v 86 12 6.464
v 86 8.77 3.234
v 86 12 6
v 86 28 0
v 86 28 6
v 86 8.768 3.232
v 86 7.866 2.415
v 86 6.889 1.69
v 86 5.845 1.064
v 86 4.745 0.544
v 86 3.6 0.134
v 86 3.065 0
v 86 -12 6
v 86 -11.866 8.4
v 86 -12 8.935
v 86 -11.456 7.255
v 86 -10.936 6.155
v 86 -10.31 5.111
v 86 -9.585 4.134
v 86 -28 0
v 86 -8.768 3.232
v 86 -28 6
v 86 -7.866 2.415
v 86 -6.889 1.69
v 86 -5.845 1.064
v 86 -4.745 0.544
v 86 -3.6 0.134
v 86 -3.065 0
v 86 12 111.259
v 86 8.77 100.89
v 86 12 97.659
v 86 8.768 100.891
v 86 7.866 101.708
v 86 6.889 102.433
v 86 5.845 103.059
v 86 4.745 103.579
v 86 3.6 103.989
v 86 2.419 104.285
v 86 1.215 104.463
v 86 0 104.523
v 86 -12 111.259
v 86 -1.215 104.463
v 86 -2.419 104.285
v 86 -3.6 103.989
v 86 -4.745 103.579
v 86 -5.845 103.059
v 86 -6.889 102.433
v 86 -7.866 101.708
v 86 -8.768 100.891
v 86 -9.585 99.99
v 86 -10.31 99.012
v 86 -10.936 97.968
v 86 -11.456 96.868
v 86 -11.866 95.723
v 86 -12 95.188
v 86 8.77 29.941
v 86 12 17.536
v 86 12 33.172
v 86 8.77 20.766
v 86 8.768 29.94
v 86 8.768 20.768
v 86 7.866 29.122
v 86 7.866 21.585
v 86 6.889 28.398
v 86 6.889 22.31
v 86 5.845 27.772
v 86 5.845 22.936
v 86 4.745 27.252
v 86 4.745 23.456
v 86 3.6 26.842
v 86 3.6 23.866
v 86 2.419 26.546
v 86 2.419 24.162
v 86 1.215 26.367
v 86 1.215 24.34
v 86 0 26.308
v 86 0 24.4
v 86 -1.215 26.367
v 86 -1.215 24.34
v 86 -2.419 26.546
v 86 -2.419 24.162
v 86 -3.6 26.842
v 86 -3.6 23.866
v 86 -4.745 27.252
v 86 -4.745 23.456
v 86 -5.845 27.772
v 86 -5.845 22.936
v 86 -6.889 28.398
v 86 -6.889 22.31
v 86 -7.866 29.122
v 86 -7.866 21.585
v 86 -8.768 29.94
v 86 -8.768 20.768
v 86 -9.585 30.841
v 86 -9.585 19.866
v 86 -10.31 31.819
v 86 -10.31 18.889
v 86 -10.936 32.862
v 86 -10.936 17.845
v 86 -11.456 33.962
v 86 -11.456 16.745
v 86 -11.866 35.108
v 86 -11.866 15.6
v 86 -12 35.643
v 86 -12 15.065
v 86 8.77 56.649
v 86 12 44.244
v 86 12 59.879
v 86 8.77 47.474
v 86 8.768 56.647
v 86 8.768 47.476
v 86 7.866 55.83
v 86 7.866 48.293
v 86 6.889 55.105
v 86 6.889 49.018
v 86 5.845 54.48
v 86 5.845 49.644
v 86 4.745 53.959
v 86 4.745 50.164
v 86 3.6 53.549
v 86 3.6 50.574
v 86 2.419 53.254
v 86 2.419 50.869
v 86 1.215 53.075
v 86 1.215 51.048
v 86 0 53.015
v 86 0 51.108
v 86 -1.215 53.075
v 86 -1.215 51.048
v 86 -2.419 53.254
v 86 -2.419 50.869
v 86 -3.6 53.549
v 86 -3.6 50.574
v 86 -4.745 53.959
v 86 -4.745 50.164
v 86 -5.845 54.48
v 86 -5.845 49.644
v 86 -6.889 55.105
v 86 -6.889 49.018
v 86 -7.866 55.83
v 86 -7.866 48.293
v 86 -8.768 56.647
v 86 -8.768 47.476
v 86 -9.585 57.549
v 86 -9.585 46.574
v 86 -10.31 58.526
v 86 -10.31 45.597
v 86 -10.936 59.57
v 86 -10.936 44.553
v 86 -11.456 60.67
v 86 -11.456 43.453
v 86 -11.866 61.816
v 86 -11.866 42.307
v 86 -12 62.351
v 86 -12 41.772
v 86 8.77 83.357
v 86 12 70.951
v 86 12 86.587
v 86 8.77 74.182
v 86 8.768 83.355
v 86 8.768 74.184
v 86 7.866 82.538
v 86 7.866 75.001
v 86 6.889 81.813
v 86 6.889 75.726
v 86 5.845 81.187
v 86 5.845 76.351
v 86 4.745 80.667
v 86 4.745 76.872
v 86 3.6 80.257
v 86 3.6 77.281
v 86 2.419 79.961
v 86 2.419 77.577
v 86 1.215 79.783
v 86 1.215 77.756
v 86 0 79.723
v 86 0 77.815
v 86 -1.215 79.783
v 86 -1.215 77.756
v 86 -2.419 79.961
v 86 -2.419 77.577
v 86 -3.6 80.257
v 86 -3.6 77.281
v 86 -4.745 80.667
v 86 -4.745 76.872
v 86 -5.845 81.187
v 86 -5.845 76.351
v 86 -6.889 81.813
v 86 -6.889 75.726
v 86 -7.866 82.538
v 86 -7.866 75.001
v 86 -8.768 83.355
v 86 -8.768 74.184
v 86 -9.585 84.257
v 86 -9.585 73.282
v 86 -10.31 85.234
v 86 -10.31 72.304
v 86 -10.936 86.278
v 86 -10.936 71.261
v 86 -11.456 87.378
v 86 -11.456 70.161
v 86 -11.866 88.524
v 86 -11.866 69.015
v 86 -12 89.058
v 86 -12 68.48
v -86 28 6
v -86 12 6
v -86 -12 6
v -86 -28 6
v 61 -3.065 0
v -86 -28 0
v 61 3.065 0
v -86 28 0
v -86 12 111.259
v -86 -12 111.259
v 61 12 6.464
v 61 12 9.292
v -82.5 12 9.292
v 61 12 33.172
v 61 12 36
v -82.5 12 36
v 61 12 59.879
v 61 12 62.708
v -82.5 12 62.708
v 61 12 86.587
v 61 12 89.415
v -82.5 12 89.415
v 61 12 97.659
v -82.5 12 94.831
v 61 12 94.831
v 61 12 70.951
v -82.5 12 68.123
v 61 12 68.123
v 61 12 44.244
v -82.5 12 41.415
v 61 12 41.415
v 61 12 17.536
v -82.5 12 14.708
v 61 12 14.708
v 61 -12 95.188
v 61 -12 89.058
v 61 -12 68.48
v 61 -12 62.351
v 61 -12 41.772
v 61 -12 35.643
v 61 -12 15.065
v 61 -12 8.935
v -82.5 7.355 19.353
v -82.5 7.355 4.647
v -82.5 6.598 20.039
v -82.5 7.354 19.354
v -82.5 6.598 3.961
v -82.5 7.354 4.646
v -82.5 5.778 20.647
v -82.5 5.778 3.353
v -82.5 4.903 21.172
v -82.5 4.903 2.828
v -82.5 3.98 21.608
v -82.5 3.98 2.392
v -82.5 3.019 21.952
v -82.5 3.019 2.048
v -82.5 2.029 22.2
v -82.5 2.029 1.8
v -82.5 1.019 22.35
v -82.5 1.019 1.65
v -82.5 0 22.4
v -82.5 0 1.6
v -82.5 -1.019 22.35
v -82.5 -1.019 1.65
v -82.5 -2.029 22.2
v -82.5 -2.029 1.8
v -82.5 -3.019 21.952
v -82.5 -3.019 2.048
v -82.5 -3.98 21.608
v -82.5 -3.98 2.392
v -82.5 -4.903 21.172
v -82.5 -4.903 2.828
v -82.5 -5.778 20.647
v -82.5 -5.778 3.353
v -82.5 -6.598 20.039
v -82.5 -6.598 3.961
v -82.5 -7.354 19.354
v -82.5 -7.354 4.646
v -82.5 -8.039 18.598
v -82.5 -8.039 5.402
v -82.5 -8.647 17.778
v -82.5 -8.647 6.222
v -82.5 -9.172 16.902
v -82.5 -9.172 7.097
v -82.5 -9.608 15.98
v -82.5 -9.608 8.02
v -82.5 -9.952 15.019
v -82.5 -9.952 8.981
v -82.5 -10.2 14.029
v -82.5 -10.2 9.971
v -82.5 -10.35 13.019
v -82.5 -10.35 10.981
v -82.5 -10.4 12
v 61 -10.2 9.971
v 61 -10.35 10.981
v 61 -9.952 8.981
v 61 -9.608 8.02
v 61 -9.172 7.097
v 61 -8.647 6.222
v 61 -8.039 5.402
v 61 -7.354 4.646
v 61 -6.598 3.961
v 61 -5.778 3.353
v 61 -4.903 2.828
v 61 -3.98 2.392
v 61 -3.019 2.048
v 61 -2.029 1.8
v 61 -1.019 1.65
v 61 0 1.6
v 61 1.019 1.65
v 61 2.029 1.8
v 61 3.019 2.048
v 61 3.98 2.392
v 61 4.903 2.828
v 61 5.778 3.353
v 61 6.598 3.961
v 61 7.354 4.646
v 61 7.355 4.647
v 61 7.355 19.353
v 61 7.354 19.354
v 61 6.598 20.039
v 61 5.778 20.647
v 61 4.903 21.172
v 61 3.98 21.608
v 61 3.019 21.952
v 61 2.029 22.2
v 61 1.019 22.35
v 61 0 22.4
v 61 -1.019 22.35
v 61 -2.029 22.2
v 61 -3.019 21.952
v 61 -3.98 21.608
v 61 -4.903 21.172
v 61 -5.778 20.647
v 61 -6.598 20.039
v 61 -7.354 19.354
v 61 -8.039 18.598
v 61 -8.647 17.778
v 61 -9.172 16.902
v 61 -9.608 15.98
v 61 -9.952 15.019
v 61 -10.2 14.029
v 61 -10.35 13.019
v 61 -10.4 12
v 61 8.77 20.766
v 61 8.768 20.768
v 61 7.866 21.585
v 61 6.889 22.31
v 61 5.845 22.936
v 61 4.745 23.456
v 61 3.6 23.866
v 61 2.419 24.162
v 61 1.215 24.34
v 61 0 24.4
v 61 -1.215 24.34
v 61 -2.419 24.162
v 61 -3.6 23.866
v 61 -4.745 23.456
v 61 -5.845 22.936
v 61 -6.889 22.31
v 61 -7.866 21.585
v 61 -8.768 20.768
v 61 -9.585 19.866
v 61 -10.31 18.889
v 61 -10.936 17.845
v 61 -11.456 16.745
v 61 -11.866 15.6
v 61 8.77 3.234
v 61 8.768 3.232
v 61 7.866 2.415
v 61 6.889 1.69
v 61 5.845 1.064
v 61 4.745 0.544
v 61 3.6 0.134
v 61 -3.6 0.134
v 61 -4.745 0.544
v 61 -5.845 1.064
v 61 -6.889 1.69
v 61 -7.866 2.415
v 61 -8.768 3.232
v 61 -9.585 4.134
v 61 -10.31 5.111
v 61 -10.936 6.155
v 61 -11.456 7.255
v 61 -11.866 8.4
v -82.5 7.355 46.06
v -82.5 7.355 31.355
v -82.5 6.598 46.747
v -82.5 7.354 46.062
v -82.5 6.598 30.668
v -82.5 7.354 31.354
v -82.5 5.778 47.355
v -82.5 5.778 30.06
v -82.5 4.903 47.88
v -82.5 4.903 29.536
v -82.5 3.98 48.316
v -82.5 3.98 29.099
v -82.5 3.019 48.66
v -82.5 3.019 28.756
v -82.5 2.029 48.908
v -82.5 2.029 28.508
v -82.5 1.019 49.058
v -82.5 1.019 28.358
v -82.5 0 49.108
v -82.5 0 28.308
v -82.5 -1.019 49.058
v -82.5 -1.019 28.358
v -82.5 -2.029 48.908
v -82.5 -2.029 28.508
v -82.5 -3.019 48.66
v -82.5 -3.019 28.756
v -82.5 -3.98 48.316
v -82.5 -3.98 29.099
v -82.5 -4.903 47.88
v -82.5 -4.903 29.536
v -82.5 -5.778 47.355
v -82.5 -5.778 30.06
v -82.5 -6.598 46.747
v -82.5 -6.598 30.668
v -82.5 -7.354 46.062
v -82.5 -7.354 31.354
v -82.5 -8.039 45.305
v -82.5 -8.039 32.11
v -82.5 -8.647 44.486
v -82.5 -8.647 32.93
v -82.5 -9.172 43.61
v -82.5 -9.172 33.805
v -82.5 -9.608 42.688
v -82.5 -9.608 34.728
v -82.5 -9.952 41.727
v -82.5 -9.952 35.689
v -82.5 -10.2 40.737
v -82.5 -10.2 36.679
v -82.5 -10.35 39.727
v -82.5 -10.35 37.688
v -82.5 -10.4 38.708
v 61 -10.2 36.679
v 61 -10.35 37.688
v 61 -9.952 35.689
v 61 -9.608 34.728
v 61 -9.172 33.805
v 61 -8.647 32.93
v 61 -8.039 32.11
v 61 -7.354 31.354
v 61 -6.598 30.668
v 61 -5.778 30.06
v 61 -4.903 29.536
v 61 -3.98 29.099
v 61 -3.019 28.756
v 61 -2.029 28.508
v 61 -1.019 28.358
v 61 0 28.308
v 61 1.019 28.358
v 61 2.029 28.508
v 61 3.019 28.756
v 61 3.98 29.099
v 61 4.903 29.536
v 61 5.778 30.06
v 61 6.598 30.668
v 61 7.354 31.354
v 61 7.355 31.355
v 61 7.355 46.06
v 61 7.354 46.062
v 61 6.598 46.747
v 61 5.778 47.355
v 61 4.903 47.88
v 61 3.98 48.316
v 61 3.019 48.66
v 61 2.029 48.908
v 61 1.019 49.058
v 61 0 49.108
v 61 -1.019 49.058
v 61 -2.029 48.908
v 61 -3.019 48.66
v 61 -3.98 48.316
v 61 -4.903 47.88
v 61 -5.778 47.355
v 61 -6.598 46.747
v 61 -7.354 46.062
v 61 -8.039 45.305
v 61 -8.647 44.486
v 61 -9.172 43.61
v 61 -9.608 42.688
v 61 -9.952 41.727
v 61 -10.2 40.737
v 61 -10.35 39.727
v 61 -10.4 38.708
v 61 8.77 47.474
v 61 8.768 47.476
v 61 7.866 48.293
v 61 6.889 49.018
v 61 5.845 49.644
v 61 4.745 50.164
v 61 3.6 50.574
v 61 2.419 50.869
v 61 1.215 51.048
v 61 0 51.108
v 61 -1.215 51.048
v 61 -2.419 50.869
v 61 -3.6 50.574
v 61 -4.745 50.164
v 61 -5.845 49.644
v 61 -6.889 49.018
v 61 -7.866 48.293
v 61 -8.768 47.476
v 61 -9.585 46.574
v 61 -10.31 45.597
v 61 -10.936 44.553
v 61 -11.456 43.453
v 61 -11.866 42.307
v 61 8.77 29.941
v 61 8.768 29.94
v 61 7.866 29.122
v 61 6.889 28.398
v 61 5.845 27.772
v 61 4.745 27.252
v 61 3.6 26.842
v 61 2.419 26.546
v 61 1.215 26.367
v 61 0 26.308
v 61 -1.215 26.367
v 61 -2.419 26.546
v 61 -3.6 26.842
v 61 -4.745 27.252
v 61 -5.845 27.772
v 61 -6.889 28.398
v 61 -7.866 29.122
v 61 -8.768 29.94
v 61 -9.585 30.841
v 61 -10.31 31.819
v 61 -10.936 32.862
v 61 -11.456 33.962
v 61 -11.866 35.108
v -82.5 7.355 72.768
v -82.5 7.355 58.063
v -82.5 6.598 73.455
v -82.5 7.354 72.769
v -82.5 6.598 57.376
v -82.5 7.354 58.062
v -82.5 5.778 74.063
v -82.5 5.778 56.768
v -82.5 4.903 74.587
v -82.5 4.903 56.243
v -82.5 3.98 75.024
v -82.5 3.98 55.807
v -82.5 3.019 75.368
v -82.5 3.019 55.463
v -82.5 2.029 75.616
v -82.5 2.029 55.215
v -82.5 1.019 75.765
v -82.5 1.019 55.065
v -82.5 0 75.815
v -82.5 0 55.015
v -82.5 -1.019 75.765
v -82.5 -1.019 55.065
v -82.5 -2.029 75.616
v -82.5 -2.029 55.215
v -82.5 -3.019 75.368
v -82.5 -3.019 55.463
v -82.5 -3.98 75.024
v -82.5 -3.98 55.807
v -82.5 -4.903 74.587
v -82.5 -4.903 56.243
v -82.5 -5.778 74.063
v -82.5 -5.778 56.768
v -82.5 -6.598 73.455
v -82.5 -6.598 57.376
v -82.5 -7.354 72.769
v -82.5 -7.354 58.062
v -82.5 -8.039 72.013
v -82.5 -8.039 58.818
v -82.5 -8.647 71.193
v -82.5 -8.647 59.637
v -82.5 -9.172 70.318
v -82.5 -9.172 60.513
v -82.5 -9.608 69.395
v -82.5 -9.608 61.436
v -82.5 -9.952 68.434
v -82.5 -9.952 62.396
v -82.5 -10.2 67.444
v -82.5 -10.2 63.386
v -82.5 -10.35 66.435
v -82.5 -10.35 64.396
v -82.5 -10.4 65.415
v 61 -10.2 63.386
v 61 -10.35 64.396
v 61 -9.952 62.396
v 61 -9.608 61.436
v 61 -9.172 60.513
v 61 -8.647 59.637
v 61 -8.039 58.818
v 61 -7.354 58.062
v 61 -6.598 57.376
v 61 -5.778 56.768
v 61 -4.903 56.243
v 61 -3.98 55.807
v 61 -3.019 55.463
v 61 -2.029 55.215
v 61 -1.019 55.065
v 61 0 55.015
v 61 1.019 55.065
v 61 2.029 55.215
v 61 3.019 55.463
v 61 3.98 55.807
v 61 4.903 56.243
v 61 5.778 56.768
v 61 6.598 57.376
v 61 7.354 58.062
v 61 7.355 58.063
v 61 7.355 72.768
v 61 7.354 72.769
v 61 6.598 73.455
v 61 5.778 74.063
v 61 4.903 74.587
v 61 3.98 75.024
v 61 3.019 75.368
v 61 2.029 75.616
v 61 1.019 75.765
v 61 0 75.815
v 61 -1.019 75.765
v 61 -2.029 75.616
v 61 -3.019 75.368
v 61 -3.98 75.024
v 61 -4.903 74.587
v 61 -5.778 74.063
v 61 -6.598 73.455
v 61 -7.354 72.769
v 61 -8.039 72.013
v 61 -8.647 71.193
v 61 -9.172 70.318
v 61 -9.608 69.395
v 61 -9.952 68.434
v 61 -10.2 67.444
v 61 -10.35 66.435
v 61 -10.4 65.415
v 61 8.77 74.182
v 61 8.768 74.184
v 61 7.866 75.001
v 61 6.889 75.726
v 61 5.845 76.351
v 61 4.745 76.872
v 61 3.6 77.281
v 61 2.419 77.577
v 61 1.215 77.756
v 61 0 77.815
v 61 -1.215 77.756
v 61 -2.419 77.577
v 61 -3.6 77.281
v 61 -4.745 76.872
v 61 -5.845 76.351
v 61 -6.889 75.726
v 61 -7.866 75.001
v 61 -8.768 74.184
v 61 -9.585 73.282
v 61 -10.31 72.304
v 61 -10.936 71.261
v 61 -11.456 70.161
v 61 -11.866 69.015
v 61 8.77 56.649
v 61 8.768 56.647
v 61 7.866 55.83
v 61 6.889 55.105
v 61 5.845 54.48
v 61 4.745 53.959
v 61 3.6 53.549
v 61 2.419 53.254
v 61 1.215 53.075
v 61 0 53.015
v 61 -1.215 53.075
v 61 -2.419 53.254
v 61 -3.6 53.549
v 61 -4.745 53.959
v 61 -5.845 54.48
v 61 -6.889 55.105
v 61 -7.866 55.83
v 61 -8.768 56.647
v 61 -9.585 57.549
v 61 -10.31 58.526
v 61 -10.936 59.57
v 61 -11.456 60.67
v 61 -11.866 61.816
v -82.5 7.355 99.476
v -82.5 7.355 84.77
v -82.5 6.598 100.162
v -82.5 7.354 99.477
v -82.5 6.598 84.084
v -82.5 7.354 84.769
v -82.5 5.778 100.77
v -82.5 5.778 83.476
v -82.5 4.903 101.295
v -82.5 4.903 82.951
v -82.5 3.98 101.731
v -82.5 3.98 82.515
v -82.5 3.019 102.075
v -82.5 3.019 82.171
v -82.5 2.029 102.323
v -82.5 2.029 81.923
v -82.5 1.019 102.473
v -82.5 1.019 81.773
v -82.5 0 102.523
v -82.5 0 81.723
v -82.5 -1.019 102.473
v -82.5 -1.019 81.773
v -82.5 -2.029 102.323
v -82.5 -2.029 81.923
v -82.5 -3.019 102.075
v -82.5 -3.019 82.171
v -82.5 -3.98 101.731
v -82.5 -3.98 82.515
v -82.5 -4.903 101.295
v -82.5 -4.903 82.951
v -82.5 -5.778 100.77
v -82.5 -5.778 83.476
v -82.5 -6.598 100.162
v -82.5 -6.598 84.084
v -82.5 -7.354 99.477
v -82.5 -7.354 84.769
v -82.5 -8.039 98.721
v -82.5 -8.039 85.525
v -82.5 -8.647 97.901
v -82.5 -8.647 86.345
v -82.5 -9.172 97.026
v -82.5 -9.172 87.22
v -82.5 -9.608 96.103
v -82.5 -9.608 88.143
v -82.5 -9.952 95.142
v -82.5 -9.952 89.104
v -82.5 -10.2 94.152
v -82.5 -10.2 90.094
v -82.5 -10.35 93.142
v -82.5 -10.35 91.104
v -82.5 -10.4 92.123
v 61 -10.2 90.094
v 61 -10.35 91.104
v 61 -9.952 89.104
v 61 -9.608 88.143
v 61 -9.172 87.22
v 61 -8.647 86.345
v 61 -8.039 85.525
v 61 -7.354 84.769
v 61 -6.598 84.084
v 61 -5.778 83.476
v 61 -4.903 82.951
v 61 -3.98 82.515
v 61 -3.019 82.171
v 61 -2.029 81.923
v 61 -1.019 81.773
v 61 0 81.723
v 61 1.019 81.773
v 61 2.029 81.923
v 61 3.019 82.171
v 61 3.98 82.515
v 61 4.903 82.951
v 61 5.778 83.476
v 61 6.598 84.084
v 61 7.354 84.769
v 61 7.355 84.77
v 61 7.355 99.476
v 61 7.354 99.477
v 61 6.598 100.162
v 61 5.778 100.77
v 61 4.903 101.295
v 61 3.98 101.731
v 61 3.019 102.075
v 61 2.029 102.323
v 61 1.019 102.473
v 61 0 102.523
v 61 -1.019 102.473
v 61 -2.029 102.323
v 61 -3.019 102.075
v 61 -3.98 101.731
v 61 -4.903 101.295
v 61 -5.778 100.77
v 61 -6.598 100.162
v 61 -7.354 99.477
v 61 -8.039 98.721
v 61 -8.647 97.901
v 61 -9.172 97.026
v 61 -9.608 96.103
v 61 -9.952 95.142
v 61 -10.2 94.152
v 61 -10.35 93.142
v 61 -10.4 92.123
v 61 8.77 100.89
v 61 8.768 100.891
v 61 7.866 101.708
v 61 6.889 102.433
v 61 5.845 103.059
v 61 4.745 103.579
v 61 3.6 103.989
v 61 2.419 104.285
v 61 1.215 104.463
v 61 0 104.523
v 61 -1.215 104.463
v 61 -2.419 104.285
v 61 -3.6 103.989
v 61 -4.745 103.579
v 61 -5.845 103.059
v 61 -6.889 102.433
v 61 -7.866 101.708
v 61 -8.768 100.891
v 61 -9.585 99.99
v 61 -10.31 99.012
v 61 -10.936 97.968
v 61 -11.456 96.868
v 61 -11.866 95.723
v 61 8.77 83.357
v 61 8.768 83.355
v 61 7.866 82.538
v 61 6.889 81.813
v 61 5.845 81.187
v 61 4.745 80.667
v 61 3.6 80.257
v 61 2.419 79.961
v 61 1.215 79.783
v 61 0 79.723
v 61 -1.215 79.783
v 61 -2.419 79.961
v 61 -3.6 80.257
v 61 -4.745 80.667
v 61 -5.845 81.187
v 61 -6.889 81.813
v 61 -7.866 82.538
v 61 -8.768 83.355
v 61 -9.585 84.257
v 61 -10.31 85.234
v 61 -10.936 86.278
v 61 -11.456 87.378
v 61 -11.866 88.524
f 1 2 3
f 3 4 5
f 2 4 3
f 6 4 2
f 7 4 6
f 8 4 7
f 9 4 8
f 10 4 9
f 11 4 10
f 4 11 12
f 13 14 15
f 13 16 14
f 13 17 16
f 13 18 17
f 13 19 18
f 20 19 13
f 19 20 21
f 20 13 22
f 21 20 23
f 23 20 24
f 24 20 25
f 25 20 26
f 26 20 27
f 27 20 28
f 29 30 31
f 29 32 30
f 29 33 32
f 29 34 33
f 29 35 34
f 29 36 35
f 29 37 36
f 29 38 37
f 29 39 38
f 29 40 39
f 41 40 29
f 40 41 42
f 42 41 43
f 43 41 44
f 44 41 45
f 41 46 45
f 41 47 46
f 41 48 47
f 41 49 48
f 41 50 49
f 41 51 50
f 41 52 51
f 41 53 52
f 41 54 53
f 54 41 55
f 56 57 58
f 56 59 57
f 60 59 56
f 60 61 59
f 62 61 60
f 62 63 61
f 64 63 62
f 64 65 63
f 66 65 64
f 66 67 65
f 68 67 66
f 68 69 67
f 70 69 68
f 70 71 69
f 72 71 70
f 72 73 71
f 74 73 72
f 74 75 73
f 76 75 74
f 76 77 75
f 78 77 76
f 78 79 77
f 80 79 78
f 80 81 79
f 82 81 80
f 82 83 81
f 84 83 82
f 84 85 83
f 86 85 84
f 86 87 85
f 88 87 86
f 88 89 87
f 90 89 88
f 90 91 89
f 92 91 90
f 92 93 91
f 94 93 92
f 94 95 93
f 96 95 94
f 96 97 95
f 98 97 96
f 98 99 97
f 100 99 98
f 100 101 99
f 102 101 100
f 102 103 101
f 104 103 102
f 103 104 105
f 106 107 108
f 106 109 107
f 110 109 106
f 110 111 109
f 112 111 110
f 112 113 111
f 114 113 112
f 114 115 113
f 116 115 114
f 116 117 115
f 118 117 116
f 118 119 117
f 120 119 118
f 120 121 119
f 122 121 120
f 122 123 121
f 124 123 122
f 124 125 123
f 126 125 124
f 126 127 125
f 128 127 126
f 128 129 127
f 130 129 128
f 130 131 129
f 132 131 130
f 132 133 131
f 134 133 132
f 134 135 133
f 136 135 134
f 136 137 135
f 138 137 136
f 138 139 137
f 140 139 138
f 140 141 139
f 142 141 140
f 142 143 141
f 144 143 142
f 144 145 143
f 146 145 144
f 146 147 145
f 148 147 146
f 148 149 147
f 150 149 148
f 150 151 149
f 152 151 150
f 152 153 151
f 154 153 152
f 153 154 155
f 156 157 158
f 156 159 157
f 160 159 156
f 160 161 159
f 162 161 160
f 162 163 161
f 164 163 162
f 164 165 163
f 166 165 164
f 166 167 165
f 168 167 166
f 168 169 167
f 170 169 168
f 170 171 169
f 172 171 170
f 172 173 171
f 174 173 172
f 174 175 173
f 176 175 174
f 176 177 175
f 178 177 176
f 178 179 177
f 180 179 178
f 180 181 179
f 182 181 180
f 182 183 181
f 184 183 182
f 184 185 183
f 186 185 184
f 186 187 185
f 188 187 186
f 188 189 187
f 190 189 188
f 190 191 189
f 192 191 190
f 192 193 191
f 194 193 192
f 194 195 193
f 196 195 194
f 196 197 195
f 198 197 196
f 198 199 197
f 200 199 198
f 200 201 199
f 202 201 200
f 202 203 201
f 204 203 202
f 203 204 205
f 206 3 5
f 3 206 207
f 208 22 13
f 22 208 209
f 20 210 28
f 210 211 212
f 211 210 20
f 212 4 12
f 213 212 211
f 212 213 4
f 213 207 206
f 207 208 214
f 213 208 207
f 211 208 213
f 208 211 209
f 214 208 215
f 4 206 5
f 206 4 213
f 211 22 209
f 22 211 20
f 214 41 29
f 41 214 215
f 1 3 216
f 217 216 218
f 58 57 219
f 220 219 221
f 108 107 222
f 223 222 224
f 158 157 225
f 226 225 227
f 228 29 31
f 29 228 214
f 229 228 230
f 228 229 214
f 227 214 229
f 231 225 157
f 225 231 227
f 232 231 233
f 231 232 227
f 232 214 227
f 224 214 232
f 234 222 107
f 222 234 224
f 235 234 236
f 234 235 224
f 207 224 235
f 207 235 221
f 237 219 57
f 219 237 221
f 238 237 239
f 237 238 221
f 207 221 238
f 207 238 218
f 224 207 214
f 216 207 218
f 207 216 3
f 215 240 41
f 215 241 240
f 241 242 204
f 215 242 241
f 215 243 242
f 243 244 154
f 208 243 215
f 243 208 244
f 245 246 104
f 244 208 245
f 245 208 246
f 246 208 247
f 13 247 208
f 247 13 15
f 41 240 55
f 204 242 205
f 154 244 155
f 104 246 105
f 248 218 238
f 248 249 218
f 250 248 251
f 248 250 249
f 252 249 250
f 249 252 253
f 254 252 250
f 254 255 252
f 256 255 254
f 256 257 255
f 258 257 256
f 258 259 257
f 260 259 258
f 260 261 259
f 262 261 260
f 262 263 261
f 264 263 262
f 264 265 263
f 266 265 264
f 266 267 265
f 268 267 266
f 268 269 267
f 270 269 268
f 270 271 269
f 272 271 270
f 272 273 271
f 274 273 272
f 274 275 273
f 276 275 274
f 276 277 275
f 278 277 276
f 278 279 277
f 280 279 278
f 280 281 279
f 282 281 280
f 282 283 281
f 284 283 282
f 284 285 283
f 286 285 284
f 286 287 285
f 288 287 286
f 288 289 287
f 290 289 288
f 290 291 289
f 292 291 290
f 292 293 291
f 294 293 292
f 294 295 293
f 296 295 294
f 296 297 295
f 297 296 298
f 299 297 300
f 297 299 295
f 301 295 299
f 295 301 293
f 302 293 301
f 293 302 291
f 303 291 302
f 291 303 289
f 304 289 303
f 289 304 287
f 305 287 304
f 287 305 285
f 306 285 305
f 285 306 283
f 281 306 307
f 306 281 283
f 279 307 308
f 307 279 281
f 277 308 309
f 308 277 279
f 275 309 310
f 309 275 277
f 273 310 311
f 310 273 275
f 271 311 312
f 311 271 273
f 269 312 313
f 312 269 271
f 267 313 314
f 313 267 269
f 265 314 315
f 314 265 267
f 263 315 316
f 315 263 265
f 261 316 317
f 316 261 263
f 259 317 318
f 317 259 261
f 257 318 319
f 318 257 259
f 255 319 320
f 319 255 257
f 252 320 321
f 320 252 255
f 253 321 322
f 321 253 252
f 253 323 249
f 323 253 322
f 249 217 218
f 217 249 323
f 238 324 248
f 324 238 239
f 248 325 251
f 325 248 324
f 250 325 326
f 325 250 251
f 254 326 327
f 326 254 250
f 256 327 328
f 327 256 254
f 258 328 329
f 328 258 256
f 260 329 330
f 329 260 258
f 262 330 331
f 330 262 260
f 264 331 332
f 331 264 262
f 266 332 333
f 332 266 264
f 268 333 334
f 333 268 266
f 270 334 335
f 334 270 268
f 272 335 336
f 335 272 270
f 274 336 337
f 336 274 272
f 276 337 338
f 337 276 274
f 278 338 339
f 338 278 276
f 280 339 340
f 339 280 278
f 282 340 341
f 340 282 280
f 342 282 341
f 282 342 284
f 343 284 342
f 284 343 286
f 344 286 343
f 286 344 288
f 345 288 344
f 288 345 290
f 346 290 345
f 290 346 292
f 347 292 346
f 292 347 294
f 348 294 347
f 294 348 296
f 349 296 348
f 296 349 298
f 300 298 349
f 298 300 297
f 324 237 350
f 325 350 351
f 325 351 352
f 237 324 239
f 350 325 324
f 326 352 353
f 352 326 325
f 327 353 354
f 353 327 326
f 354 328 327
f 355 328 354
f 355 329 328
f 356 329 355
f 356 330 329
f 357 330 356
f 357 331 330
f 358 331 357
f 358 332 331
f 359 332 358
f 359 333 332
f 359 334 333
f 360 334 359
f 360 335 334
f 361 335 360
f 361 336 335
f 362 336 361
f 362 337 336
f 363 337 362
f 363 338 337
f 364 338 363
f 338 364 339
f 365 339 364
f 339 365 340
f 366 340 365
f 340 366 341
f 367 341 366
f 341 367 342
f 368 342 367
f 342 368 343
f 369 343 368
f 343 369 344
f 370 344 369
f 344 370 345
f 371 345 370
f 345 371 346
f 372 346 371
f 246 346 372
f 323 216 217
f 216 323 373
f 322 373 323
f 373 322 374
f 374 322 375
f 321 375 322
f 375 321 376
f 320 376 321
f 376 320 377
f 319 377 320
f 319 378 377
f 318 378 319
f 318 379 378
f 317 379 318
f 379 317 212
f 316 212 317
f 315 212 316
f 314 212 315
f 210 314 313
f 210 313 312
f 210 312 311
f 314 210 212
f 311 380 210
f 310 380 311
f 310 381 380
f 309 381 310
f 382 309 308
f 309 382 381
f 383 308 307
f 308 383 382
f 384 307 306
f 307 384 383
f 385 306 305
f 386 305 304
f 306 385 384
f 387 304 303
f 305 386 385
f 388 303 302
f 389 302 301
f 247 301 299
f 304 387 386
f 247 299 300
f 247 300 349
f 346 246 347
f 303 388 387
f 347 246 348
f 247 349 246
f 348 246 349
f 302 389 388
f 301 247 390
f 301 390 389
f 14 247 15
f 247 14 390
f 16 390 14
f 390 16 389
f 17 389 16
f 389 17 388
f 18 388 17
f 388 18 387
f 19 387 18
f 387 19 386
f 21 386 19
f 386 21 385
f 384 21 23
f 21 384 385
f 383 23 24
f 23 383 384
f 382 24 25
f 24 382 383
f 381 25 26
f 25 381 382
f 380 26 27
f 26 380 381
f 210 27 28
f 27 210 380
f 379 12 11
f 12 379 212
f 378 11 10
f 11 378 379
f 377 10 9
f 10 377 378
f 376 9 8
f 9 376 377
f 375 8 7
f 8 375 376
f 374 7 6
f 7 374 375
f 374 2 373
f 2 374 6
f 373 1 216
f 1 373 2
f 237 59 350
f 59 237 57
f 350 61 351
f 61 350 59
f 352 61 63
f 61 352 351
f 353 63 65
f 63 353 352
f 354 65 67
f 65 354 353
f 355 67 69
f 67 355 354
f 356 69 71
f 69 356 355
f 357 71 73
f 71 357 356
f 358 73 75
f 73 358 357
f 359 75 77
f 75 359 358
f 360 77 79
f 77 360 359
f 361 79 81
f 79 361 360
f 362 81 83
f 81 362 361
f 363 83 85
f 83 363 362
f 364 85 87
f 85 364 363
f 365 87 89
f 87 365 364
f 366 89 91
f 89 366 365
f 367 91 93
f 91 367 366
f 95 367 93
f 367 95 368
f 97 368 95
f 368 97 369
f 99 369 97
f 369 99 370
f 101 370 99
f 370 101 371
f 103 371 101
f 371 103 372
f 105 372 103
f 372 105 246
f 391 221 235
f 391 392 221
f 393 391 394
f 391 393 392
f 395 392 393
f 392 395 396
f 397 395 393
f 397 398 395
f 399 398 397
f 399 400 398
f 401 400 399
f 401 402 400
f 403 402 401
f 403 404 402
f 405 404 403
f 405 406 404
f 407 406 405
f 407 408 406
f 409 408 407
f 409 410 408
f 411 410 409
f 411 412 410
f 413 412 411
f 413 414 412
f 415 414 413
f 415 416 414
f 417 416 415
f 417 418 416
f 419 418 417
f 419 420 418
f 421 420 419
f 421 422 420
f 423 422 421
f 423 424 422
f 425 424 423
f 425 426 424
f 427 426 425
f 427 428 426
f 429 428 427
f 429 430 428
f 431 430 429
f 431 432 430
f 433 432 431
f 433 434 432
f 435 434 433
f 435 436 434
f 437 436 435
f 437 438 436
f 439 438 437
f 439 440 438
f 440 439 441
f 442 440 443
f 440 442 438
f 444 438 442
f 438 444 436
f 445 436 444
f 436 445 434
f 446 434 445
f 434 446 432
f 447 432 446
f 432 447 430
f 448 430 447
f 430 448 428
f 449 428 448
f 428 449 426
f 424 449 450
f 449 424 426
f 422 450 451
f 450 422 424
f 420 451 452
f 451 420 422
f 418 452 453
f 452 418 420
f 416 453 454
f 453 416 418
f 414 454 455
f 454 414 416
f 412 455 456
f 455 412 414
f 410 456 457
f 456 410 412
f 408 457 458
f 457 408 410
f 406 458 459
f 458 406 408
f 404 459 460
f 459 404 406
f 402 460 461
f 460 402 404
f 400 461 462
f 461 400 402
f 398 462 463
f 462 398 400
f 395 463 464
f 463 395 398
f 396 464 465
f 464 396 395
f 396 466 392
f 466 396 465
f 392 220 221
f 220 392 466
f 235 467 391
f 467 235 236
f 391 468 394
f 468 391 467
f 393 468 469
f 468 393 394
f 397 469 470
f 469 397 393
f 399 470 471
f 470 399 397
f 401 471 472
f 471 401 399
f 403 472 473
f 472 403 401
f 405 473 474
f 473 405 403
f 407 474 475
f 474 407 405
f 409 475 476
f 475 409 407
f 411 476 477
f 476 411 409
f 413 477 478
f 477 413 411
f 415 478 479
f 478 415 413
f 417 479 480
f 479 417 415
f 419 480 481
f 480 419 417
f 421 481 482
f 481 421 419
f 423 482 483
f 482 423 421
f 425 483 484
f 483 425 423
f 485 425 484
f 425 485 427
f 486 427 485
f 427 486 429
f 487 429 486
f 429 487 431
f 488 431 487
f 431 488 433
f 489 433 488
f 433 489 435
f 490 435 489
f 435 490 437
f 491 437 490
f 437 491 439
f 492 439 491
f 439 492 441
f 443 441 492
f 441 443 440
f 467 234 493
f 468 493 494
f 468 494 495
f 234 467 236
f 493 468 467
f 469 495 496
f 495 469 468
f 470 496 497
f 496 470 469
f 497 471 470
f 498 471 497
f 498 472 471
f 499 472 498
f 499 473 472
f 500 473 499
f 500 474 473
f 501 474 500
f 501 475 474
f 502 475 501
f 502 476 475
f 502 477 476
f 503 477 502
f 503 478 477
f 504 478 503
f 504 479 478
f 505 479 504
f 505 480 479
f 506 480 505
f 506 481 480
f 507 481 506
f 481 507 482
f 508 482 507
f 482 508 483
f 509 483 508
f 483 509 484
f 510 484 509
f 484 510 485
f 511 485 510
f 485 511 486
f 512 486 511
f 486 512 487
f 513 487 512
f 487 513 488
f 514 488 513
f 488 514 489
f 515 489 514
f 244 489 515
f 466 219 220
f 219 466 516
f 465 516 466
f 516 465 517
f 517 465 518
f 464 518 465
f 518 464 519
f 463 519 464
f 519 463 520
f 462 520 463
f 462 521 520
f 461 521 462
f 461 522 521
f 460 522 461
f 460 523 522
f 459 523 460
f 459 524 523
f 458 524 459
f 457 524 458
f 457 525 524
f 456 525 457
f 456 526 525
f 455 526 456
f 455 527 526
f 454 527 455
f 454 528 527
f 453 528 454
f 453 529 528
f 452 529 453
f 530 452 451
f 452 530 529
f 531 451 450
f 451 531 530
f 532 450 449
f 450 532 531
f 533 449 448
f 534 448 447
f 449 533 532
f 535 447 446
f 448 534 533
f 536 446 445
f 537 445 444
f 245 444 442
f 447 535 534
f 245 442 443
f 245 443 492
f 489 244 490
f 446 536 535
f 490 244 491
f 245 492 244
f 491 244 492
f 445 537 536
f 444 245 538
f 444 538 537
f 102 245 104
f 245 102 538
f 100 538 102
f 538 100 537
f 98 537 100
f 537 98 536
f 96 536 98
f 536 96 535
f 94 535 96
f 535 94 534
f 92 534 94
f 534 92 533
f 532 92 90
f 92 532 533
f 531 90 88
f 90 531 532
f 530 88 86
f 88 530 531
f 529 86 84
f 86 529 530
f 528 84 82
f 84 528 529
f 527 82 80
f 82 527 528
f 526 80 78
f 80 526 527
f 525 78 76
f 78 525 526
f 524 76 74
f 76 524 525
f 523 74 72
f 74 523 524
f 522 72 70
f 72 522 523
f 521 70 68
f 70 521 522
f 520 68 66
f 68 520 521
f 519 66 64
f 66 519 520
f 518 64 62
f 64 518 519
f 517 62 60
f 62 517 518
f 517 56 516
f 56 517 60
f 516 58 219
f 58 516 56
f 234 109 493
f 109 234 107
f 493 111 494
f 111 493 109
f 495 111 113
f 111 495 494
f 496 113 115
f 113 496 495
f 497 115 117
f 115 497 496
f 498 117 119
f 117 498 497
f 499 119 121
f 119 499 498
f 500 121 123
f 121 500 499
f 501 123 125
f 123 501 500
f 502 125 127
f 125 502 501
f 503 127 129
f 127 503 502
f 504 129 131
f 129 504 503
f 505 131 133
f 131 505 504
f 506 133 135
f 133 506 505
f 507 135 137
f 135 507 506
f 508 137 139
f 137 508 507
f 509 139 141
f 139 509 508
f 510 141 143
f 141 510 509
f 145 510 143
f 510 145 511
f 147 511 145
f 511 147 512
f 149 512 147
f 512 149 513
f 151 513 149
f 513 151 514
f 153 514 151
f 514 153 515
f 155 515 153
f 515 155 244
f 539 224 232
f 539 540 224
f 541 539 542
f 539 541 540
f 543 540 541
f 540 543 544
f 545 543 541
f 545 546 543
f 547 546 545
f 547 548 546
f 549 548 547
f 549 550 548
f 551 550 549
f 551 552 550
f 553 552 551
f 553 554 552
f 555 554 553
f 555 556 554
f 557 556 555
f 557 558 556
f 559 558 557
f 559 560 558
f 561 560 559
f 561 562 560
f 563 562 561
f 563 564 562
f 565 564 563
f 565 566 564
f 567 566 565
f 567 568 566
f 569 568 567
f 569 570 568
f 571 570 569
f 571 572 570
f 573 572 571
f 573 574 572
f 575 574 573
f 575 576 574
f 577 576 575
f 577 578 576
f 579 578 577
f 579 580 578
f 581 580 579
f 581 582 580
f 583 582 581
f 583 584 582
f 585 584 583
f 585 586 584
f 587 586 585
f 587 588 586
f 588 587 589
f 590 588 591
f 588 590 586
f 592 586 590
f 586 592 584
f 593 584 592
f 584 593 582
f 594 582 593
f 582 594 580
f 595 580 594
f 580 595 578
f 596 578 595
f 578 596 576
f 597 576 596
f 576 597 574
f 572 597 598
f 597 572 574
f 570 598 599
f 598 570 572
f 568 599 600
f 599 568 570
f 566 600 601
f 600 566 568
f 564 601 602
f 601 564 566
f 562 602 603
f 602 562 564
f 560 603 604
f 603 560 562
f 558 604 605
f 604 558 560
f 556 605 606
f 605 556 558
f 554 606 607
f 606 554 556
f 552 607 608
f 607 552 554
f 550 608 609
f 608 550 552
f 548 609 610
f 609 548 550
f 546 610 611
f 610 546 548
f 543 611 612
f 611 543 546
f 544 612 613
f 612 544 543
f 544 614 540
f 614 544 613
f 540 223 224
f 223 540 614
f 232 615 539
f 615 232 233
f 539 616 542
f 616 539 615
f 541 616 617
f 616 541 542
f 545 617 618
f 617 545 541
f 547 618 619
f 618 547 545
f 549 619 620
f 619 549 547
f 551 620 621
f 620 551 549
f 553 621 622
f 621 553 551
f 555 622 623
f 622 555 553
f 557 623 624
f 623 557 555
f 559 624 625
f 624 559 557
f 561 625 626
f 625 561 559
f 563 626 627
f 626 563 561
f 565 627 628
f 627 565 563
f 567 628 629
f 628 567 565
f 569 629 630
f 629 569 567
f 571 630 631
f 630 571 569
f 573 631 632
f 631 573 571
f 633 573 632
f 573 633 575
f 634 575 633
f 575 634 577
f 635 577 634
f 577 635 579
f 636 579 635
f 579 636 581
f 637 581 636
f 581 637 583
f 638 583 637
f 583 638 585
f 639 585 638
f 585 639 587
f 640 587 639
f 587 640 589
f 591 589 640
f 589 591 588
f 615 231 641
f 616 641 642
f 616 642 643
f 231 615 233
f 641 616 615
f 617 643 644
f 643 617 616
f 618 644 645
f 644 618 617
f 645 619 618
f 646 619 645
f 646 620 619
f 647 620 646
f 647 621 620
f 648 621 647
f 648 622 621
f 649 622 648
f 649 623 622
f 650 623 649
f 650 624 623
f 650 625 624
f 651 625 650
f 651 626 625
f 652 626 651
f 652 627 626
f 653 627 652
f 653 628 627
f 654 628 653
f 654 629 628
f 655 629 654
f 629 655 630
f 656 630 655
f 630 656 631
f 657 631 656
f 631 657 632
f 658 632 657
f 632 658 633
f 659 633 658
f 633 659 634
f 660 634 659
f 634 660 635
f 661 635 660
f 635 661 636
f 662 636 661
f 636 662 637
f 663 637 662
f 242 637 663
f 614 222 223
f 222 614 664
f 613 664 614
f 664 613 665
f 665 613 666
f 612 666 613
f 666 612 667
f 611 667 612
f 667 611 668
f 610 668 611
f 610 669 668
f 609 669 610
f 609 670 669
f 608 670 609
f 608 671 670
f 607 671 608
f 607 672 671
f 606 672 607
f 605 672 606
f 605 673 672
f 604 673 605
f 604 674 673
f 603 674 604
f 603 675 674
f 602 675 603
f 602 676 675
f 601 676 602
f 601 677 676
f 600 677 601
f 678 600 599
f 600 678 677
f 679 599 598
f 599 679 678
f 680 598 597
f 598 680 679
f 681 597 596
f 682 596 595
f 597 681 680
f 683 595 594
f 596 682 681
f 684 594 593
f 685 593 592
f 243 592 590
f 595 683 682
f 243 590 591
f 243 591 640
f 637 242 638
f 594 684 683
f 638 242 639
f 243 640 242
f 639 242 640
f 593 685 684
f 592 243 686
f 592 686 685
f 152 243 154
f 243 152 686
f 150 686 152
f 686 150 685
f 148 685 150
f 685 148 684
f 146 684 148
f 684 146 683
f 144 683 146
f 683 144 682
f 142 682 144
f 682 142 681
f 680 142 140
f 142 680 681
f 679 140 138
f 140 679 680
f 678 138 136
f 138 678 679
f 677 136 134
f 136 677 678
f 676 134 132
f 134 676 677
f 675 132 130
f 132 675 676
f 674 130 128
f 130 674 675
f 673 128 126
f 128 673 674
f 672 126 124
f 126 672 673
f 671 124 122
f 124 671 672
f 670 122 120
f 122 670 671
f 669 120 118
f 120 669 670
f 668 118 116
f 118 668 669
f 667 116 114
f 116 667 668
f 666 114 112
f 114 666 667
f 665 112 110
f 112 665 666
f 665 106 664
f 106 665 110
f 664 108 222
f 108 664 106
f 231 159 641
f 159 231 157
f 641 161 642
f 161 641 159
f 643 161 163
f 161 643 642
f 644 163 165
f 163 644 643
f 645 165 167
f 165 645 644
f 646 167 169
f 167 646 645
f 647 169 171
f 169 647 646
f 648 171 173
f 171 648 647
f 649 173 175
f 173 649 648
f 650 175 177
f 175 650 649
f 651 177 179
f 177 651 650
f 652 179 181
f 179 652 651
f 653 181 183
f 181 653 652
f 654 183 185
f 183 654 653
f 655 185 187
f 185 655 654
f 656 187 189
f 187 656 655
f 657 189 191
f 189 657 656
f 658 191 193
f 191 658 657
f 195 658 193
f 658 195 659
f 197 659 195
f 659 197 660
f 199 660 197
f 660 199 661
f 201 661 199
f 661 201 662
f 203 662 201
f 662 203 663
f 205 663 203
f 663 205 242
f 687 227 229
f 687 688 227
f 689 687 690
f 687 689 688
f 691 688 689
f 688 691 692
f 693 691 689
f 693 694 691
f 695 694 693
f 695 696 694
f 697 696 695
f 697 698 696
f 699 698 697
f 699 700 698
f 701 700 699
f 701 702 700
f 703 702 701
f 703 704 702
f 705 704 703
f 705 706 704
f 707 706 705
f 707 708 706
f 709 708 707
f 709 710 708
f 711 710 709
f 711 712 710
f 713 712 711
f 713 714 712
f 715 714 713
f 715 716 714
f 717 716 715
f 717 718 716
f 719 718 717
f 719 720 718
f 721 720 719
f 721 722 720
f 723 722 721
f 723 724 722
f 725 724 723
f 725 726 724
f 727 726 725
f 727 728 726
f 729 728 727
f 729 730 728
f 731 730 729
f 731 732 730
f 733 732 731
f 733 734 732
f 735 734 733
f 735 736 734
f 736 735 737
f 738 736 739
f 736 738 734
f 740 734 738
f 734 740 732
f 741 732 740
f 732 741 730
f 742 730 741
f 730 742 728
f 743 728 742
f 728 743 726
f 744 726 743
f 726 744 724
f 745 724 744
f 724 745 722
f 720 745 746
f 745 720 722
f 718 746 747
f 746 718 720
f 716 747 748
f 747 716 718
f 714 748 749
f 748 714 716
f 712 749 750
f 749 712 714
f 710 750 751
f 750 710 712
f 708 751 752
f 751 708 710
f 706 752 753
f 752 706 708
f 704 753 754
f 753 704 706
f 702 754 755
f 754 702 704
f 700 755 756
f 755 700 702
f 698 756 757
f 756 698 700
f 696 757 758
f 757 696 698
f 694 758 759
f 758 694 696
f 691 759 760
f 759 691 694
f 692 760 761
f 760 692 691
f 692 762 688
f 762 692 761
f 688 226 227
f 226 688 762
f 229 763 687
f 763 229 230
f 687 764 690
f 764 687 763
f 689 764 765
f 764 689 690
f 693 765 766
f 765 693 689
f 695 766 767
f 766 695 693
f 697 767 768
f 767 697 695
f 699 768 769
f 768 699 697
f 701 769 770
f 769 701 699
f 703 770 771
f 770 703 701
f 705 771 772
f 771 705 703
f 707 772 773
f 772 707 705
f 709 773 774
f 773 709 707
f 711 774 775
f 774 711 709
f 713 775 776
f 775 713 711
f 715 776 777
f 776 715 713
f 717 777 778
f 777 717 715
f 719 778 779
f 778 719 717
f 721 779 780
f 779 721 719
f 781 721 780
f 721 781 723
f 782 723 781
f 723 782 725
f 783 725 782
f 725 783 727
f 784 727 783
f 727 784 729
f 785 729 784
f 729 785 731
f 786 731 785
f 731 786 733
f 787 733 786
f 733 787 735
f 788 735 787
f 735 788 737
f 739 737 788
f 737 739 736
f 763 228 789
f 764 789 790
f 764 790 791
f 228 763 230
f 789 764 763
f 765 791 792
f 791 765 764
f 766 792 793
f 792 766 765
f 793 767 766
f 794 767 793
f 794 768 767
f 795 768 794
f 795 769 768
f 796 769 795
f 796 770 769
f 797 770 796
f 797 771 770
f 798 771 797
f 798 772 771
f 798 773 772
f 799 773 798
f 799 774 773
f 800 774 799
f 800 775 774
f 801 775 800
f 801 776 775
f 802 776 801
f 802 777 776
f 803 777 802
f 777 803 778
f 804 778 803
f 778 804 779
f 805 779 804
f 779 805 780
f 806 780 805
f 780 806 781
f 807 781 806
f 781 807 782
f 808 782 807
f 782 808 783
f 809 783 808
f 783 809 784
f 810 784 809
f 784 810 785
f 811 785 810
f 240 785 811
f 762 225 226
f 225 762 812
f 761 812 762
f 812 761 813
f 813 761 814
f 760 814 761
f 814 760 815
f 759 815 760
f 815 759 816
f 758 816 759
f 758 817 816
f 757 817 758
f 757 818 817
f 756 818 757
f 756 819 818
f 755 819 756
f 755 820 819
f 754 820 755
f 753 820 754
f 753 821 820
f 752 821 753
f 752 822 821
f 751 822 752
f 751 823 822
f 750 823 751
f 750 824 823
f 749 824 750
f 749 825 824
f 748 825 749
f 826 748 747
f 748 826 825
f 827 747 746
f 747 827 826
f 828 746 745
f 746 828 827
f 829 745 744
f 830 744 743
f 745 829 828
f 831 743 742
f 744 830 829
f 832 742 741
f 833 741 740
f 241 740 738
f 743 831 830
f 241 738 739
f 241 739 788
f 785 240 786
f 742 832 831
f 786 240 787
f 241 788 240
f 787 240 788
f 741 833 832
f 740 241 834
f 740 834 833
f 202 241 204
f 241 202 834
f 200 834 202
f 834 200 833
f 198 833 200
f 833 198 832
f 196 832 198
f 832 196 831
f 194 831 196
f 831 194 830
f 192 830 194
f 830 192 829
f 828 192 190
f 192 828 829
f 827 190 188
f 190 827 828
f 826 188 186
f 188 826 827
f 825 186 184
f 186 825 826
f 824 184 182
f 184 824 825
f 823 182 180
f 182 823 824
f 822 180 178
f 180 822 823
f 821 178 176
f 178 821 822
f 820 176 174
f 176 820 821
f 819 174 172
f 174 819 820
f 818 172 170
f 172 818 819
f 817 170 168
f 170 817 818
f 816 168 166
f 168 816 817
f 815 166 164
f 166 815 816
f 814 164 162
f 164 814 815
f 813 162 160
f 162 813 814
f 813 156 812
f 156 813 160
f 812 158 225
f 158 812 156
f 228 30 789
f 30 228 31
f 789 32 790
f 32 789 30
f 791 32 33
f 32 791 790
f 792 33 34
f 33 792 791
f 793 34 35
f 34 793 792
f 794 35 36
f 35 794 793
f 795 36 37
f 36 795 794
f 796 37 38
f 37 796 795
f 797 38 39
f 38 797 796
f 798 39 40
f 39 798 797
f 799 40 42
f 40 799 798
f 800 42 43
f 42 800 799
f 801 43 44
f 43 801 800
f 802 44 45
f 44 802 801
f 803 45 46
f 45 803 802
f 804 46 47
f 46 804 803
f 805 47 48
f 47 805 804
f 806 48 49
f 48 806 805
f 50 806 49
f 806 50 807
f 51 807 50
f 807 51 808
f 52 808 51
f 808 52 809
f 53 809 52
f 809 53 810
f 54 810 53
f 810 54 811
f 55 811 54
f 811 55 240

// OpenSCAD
// file: common.scad
// ============================================================
// common.scad — shared parameters + modules for all designs
// LOCKED PEN SPECIFICATION (do not change)
// ============================================================
PEN_L = 165;      // pen length (mm)
PEN_A = 17;       // pen cross-section minor
PEN_B = 20;       // pen cross-section major (used as diameter envelope)
CLEAR = 0.4;      // fit clearance
WALL  = 1.6;      // minimum wall thickness

$fn = 64;

RCH = PEN_B/2 + CLEAR;   // = 10.4  channel radius
EPS = 0.01;

// --- open-top U trough cut, axis along X, centered at local origin -----------
// Removes a lower half-cylinder of radius r plus a full-width vertical slot
// upward, so the channel is open at the top (no ceiling -> no overhang).
module trough_cut(len, r=RCH, top=80) {
    union() {
        rotate([0,90,0]) cylinder(h=len, r=r, center=true);
        translate([0,0,top/2]) cube([len, 2*r, top], center=true); // slot upward
    }
}

// --- teardrop hole, axis along X, centered at local origin --------------------
// 45-degree self-supporting apex pointing +Z so a horizontal bore can print
// without support.
module teardrop_cut(len, r=RCH) {
    rotate([0,90,0])
        linear_extrude(height=len, center=true)
            union() {
                circle(r=r);
                polygon([[ 0.7071*r, 0.7071*r],
                         [ 0,         1.4142*r],
                         [-0.7071*r,  0.7071*r]]);
            }
}

// --- dial relief: widened open-top pocket at one channel end -----------------
// place at the +X or -X end of a channel so the dose dial clears / can be turned
module dial_relief(end_x, r=RCH+2.2, len=28, top=80) {
    translate([end_x, 0, 0]) trough_cut(len, r, top);
}
// main file
// q2_tower4 — vertical 4-high teardrop column on a stabilizing base
// Family: stacked column (smallest footprint). Four pens stacked in one
// vertical wall-rack; teardrop bores keep every level self-supporting.
// A wide base flange resists side-tipping. Dial relief breaks out the +X end.
include <common.scad>

LBLK   = 172;
ROW_DZ = 2.4142*RCH + WALL;        // 26.7
RR     = RCH + 2;

Z = [for (i=[0:3]) WALL + RCH + i*ROW_DZ];   // 12, 38.7, 65.4, 92.1
COLW = 2*RCH + 2*WALL;             // 24 tower width
HBLK = Z[3] + 1.4142*RR + WALL;    // enclose top relief apex (~111)

BASE_W = 56;                       // < 63.5  base flange width
BASE_H = 6;
RELIEF_X = LBLK/2 - 10;

difference() {
    union() {
        translate([0,0,BASE_H/2]) cube([LBLK, BASE_W, BASE_H], center=true);  // base
        translate([0,0,HBLK/2])   cube([LBLK, COLW,  HBLK],  center=true);    // tower
    }
    for (zc = Z) {
        translate([0, 0, zc]) teardrop_cut(PEN_L);
        translate([RELIEF_X, 0, zc]) teardrop_cut(30, RR);
    }
}
